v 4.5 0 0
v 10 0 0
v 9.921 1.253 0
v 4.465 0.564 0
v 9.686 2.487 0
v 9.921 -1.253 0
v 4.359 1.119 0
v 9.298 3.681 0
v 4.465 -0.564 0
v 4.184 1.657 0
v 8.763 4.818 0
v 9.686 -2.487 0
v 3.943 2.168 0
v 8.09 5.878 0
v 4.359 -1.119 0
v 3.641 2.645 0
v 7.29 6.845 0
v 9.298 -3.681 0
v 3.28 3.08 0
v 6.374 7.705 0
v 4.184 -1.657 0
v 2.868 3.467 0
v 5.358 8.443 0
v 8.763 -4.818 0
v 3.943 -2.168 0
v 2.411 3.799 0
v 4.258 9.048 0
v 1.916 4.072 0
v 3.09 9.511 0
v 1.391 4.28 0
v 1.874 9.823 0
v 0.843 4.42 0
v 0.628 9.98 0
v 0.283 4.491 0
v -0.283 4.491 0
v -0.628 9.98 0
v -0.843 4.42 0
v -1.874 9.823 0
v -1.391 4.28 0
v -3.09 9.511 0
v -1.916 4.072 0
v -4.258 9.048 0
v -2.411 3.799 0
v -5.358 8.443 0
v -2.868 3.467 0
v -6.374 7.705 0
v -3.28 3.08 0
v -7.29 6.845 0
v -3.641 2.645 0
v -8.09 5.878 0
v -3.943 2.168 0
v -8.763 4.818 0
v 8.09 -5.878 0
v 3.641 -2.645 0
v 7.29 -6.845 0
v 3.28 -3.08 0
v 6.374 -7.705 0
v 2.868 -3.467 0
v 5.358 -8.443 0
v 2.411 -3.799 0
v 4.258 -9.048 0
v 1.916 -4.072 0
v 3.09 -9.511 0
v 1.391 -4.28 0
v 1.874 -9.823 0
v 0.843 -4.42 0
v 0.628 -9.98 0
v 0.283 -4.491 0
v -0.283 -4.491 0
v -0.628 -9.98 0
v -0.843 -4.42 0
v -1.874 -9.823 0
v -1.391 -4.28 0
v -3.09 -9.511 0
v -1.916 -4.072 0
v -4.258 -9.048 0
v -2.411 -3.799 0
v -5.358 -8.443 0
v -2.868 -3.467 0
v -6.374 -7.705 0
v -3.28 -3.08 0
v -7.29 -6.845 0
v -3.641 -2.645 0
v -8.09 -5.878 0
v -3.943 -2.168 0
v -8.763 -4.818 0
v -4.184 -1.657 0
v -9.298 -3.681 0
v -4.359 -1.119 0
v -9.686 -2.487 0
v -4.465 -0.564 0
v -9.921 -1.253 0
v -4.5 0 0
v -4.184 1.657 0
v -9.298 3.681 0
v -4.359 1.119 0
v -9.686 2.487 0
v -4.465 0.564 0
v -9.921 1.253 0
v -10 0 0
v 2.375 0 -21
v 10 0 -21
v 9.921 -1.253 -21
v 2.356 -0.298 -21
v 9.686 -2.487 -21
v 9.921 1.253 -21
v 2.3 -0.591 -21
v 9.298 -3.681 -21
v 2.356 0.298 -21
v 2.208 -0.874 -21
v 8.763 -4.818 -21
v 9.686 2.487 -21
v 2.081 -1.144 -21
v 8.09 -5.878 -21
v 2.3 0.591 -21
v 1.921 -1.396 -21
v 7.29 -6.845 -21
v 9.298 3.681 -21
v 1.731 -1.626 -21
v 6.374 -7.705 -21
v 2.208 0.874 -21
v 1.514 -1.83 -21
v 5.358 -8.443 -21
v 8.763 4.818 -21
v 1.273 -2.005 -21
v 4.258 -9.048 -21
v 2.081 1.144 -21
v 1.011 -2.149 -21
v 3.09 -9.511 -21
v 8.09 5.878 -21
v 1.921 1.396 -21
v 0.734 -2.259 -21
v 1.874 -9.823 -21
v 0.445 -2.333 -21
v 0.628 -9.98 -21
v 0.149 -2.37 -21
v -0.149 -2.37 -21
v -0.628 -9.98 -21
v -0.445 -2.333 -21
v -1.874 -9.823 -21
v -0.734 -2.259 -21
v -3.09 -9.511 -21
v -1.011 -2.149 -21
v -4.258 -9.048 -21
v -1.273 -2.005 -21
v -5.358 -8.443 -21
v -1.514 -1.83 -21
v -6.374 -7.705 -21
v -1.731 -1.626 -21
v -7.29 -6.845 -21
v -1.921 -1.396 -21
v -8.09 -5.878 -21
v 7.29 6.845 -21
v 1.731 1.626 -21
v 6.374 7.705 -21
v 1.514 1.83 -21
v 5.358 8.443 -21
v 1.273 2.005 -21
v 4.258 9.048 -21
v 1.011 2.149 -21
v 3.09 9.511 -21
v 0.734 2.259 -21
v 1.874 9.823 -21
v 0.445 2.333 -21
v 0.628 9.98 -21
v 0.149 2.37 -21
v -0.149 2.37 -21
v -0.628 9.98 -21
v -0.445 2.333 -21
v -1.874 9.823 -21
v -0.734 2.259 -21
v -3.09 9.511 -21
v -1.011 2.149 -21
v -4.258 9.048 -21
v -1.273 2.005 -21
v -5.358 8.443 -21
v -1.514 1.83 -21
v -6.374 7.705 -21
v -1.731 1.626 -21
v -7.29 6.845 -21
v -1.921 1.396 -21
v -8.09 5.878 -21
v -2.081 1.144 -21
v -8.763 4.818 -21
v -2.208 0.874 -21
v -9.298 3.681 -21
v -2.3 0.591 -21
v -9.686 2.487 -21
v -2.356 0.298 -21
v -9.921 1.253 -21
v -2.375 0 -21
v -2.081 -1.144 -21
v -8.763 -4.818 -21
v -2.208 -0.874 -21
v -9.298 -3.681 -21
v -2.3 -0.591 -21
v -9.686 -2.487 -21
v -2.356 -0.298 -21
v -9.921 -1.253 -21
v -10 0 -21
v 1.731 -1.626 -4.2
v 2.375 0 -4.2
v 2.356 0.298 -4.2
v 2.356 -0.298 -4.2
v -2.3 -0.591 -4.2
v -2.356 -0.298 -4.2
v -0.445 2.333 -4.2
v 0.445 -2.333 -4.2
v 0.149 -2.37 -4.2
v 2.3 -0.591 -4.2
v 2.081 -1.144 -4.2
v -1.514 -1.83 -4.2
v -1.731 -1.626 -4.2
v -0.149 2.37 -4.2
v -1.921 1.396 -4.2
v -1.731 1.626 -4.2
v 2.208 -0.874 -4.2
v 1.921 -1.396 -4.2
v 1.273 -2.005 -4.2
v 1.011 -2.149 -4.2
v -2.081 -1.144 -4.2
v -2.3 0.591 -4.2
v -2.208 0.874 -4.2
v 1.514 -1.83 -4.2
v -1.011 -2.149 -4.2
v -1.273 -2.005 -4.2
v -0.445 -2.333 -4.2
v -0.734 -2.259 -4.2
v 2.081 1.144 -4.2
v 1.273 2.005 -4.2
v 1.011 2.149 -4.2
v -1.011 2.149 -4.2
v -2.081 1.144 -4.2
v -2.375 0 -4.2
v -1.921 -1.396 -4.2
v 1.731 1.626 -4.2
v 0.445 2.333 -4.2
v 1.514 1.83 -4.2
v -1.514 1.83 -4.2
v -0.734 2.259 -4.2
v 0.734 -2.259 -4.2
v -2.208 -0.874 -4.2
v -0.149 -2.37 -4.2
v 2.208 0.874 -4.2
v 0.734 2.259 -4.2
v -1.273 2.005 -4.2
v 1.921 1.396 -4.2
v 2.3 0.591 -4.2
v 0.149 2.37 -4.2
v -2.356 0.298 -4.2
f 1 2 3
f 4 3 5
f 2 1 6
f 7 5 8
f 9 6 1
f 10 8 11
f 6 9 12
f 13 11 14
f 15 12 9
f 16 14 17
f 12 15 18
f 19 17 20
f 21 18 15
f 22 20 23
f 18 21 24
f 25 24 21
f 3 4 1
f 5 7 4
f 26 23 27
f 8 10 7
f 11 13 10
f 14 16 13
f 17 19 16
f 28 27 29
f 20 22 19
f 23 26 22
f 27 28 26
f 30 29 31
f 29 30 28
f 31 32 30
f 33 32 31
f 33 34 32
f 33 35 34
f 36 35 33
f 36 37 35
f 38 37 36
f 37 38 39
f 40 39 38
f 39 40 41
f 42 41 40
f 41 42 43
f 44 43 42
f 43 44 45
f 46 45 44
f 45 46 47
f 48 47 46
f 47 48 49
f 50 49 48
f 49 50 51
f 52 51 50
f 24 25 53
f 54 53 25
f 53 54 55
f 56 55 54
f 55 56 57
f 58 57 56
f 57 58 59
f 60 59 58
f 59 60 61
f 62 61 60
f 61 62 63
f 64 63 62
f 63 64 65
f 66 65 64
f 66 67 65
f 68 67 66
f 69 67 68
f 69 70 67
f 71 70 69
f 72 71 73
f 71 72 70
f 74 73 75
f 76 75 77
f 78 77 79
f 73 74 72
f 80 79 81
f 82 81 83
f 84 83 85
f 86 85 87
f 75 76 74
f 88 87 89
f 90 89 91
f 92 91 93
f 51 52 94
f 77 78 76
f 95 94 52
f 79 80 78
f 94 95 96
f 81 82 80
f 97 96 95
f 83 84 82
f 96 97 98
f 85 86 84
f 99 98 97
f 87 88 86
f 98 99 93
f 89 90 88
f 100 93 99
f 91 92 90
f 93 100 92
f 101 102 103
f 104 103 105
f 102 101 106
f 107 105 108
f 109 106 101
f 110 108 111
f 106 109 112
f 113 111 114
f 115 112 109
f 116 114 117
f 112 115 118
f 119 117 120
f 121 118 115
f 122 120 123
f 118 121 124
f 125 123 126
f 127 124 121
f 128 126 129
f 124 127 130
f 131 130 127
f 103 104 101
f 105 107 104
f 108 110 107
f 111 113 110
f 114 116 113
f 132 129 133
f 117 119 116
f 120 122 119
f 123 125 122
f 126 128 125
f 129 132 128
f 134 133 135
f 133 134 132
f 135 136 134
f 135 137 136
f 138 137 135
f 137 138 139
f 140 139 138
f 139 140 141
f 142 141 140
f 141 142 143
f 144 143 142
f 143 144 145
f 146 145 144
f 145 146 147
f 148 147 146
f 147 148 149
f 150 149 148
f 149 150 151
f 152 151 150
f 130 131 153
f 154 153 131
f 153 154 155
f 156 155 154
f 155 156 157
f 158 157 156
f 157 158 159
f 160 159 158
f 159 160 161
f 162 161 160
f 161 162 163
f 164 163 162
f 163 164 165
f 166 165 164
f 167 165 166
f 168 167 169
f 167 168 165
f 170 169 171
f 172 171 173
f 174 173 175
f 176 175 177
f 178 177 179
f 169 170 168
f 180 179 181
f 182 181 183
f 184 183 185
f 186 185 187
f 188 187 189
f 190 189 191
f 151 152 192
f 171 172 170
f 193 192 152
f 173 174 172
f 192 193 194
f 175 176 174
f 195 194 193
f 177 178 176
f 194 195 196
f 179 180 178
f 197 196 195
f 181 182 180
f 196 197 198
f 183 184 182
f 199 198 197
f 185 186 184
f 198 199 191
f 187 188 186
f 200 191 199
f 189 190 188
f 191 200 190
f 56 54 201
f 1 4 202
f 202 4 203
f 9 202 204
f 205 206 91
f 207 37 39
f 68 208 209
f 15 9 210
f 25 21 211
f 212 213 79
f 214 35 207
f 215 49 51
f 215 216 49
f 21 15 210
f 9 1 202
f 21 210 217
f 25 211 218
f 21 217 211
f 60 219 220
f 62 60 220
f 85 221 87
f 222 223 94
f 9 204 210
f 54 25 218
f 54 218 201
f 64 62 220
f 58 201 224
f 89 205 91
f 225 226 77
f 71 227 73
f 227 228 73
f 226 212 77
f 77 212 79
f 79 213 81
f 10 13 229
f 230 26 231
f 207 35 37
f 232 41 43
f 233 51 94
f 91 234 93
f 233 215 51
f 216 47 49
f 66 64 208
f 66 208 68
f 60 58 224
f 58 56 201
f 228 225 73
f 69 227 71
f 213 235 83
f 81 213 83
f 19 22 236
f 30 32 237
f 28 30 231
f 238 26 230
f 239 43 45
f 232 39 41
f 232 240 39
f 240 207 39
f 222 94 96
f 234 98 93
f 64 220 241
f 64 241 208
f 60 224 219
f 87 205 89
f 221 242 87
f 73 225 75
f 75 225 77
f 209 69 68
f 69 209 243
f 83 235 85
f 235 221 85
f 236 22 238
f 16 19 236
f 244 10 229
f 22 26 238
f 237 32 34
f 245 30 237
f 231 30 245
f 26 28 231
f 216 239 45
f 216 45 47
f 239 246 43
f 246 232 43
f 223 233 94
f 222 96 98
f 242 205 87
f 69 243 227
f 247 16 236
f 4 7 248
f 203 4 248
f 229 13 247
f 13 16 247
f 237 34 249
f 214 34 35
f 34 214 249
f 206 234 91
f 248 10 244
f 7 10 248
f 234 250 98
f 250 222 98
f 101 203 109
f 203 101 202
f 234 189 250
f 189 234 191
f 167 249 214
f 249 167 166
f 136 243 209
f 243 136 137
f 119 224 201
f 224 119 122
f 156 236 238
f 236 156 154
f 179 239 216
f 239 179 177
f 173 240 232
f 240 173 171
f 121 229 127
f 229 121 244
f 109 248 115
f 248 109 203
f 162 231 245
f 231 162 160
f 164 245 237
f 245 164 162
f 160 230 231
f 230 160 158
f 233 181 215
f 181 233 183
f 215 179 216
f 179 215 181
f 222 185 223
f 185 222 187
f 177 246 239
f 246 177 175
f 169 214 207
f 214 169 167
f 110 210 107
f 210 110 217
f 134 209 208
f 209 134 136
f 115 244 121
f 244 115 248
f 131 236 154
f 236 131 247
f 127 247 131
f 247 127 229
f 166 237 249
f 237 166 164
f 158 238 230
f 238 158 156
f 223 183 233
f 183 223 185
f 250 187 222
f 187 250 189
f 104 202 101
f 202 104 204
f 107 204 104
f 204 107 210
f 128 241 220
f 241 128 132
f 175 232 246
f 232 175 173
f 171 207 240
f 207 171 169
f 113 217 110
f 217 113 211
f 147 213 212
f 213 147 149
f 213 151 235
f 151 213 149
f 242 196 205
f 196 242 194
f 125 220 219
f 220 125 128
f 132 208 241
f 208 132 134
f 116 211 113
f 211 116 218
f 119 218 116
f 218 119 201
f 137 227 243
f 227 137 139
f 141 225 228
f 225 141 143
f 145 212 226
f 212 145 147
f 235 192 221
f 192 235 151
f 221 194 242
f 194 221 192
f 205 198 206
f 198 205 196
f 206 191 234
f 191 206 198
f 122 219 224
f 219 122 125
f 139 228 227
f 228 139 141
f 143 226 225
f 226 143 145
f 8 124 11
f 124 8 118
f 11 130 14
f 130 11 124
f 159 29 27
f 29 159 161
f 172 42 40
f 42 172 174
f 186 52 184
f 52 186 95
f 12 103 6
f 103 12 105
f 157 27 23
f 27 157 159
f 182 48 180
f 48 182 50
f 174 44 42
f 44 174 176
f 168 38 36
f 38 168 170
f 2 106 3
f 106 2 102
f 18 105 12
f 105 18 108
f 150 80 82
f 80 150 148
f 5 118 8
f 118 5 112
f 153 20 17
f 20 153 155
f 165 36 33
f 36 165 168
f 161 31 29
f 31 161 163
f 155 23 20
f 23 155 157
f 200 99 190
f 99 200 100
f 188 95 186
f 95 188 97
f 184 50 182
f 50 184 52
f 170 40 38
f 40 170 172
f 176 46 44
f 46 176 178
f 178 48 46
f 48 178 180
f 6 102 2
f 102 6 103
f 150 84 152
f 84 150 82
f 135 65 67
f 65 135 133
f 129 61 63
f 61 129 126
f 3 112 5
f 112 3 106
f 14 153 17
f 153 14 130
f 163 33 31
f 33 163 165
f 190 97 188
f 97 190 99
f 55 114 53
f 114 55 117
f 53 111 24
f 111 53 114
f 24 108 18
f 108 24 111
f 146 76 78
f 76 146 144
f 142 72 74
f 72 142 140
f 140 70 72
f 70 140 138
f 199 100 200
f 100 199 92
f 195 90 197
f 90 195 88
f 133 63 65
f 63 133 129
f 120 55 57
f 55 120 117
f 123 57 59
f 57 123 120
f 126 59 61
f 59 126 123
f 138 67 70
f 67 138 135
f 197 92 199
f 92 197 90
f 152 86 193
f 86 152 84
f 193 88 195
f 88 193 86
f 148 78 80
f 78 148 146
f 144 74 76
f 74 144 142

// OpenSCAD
$fn = 50;


difference() {
	union() {
		translate(v = [0, 0, -21.0000000000]) {
			cylinder(h = 21, r = 10.0000000000);
		}
		cylinder(h = 0, r = 20.0000000000);
	}
	union() {
		translate(v = [0, 0, 0]) {
			rotate(a = [0, 0, 0]) {
				difference() {
					union() {
						#translate(v = [0, 0, -21.0000000000]) {
							cylinder(h = 21, r = 2.2500000000);
						}
						#translate(v = [0, 0, -4.2000000000]) {
							cylinder(h = 4.2000000000, r = 10.0000000000, r1 = 2.3750000000, r2 = 4.5000000000);
						}
						#translate(v = [0, 0, -21.0000000000]) {
							cylinder(h = 21, r = 2.3750000000);
						}
						#translate(v = [0, 0, -21.0000000000]) {
							cylinder(h = 21, r = 2.2500000000);
						}
					}
					union();
				}
			}
		}
	}
}
